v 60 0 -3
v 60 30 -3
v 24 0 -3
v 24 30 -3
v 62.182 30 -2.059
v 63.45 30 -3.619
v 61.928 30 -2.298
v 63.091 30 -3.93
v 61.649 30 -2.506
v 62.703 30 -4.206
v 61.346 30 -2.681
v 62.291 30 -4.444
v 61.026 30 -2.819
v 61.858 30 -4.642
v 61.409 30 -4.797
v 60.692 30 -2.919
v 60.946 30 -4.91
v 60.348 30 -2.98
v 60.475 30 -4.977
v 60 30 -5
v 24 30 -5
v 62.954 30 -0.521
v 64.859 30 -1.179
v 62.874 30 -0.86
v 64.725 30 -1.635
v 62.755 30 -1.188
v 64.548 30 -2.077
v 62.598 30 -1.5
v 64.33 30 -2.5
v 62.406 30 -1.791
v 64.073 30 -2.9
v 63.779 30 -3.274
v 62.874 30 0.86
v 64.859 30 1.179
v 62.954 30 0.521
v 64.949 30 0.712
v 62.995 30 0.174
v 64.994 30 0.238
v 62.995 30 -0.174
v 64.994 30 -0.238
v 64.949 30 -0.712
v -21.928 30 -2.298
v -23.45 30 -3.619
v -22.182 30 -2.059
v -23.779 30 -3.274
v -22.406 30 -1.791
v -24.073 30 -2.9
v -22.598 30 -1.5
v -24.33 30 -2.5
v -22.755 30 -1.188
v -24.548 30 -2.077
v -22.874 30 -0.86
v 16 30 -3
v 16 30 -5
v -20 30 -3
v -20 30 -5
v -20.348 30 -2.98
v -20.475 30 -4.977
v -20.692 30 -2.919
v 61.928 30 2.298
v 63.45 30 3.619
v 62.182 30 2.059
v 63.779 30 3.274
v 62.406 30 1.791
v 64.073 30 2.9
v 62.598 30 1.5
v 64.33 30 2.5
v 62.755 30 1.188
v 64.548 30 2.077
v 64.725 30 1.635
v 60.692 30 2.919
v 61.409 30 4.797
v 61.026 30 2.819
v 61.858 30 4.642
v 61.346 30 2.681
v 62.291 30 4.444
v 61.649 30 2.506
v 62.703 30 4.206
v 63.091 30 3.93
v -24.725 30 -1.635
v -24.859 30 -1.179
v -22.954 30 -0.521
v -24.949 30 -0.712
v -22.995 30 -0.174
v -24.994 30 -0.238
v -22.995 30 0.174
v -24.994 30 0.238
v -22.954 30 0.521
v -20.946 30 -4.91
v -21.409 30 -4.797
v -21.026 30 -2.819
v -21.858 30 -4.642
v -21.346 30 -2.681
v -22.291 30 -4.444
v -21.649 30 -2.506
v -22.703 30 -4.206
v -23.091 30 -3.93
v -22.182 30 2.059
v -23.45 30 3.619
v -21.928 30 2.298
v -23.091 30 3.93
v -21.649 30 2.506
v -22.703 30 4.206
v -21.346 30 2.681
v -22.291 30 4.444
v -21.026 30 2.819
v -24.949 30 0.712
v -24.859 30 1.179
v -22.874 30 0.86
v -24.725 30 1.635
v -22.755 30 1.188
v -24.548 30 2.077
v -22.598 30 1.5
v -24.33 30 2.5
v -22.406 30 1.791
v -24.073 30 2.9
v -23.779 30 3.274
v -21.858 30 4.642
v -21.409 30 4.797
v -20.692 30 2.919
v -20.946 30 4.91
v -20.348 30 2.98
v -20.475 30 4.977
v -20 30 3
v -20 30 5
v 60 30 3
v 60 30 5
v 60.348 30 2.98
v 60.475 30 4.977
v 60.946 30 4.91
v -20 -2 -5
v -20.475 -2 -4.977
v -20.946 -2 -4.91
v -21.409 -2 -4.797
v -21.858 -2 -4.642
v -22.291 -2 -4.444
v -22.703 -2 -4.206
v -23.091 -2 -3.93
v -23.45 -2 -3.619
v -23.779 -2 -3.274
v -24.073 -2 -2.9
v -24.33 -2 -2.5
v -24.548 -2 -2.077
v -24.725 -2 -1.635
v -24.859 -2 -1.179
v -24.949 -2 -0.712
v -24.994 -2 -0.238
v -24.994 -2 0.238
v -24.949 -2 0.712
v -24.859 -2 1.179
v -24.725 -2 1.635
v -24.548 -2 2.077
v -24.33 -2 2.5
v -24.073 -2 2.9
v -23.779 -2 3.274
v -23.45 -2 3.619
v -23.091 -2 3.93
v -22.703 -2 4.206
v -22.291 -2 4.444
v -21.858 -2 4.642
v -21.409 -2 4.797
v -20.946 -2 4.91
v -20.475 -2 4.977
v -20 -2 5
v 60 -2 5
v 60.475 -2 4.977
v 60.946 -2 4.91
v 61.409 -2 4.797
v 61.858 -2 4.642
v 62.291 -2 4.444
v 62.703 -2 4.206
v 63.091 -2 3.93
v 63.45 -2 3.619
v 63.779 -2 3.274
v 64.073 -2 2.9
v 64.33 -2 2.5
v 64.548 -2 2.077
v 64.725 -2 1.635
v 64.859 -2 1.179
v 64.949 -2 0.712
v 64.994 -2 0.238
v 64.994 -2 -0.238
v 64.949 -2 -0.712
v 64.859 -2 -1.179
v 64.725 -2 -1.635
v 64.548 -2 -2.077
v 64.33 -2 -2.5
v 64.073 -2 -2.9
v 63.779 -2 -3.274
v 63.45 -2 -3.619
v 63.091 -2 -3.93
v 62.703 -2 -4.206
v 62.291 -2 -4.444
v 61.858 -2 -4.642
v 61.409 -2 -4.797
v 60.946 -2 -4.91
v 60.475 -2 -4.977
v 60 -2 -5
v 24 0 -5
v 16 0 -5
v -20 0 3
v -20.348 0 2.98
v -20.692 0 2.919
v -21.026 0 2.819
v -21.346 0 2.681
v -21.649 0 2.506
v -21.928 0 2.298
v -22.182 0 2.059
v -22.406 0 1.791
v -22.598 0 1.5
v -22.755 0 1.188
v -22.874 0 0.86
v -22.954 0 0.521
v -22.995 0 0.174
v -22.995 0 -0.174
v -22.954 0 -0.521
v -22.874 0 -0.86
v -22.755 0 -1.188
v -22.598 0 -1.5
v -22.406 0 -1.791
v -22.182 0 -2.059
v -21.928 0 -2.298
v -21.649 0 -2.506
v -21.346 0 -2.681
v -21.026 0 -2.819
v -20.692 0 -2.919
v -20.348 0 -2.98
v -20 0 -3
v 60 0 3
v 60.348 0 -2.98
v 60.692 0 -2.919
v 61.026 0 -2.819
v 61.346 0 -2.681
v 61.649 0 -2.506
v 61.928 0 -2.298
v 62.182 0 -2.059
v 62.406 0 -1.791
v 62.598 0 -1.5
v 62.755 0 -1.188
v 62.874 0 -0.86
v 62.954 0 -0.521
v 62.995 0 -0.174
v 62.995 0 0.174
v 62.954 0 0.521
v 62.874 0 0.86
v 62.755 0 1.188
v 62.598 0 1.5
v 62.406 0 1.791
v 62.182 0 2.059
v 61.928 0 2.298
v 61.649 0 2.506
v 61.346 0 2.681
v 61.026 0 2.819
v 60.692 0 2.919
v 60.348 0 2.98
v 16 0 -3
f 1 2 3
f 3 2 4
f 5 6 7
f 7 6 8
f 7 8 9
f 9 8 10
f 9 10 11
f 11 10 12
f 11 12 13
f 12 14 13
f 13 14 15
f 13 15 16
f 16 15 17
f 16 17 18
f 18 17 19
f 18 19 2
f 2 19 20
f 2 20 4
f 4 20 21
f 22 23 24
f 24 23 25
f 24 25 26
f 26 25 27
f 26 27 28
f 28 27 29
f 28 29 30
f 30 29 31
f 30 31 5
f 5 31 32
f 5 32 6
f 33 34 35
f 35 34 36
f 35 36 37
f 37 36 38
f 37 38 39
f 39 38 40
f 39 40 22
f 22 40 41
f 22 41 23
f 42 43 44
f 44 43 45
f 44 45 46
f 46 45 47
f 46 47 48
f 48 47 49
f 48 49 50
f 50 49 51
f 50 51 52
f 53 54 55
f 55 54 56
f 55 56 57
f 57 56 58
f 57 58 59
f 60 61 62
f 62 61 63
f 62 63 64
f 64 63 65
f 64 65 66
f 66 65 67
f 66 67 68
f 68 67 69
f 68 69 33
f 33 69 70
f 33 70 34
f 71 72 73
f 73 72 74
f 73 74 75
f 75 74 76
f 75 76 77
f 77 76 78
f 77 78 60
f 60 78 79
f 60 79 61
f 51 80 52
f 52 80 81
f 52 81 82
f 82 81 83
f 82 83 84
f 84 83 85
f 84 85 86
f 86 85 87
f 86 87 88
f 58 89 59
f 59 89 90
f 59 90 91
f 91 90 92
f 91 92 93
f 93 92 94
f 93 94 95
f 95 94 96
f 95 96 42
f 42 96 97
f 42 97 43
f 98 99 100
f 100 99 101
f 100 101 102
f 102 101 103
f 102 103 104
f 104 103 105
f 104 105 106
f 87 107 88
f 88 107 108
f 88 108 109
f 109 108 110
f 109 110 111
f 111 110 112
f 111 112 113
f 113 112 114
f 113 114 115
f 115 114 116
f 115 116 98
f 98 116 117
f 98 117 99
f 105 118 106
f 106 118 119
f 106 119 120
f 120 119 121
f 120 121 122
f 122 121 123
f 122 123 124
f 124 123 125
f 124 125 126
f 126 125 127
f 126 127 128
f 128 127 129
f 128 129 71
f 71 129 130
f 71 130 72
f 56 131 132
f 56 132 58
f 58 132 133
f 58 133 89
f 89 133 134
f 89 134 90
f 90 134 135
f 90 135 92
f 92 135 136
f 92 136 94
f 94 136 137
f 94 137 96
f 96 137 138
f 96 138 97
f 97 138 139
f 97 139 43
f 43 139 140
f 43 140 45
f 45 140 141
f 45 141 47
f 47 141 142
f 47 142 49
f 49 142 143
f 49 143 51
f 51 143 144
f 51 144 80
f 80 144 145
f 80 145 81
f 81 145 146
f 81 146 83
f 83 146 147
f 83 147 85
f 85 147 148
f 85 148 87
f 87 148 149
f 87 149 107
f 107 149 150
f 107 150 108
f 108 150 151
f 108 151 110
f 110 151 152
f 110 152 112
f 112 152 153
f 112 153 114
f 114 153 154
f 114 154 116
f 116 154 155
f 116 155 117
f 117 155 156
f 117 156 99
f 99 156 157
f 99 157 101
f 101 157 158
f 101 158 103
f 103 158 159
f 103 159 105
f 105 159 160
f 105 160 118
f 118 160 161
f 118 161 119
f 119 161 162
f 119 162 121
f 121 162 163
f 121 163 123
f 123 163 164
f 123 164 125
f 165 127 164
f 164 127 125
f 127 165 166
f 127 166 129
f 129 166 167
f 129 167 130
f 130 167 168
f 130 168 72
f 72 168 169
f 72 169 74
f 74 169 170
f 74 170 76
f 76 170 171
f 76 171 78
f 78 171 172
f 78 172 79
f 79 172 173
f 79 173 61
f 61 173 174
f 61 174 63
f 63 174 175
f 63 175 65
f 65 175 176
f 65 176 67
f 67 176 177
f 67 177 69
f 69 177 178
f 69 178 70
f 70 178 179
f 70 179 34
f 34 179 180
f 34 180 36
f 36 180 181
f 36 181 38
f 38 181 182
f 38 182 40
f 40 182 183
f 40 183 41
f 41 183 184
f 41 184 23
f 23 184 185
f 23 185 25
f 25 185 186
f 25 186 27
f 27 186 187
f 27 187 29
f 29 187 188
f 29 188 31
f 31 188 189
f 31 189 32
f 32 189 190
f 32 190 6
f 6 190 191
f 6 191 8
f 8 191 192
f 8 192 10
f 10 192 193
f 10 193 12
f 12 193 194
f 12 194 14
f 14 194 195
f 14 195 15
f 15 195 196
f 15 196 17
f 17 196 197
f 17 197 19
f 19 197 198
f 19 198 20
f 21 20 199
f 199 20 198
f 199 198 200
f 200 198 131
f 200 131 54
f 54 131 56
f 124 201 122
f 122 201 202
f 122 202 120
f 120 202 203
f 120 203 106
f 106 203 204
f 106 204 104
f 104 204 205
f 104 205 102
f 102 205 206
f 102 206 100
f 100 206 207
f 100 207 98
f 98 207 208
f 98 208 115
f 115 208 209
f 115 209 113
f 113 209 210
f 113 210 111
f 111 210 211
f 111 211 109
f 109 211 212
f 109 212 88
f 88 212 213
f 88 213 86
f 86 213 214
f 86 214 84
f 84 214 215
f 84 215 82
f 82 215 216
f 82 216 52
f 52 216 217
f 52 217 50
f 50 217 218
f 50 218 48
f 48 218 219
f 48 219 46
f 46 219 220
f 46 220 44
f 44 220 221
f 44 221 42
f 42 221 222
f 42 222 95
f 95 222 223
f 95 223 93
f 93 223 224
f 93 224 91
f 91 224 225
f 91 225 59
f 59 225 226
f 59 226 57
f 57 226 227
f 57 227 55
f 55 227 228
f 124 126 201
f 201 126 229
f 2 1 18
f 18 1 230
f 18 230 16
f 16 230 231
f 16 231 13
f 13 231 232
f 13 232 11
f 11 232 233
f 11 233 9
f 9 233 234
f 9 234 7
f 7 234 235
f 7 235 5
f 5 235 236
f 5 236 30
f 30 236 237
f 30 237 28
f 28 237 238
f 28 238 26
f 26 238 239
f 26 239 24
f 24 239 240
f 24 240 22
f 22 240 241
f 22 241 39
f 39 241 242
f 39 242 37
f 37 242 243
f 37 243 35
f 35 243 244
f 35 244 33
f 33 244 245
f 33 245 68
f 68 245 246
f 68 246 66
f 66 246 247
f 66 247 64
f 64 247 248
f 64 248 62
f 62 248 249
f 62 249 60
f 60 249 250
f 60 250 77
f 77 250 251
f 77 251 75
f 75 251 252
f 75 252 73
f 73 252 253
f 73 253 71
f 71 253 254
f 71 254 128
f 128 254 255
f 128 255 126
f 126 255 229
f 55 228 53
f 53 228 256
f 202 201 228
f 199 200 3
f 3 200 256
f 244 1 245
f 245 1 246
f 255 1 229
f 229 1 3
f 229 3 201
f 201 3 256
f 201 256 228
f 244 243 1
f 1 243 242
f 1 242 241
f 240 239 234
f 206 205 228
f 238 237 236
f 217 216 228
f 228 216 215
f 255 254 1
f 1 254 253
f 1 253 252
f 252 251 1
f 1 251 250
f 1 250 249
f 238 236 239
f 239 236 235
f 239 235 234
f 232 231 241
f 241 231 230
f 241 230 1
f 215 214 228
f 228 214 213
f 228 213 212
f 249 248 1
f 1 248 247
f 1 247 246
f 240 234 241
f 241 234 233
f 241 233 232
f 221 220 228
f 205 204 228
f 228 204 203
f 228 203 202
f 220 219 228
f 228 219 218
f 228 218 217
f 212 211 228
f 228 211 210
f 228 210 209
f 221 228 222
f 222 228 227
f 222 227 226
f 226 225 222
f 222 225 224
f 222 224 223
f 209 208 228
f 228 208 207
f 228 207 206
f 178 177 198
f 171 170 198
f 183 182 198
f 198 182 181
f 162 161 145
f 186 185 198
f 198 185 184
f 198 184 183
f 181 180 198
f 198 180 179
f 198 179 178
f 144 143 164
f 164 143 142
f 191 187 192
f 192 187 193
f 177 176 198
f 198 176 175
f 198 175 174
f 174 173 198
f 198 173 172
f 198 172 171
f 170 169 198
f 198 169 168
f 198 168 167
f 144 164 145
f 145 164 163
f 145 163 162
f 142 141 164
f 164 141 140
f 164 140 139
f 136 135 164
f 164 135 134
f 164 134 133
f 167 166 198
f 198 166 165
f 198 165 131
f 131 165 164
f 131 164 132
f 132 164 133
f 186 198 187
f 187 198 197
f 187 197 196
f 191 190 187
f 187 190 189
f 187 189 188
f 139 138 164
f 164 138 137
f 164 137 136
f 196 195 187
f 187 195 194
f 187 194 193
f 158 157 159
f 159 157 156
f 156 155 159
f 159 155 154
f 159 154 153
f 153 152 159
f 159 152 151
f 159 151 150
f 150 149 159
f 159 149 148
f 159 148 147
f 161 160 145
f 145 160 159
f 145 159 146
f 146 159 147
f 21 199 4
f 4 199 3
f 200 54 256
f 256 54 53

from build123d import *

# Parameters (mm, degrees)
EXTRUDE_1_DEPTH     = 30
EXTRUDE_2_DEPTH     = 2
SKETCH_3_W          = 8
SKETCH_3_H          = 2.352392564
CUT_EXTRUDE_1_DEPTH = 30


with BuildPart() as part:
    # 草圖1 → 填料-伸長1 (new body)
    with BuildSketch(Plane(origin=(0, 0, 0), x_dir=(1, 0, 0), z_dir=(0, 1, 0))):
        with BuildLine():
            Line((-20, 5), (60, 5))
            ThreePointArc((60, 5), (65, 0), (60, -5))
            Line((60, -5), (-20, -5))
            ThreePointArc((-20, -5), (-25, 0), (-20, 5))
        make_face()
        with BuildLine():
            Line((-20, 3), (60, 3))
            ThreePointArc((60, 3), (63, 0), (60, -3))
            Line((60, -3), (-20, -3))
            ThreePointArc((-20, -3), (-23, 0), (-20, 3))
        make_face(mode=Mode.SUBTRACT)
    extrude(amount=EXTRUDE_1_DEPTH)

    # 草圖2 → 填料-伸長2 (add)
    with BuildSketch(Plane.XZ):
        with BuildLine():
            Line((-20, -5), (60, -5))
            ThreePointArc((60, -5), (65, 0), (60, 5))
            Line((60, 5), (-20, 5))
            ThreePointArc((-20, 5), (-25, 0), (-20, -5))
        make_face()
    extrude(amount=EXTRUDE_2_DEPTH)

    # 草圖3 → 除料-伸長1 (cut)
    with BuildSketch(Plane(origin=(0, 30, 0), x_dir=(1, 0, 0), z_dir=(0, 1, 0))):
        with Locations((20, 3.823803718)):
            Rectangle(SKETCH_3_W, SKETCH_3_H)
    extrude(amount=-CUT_EXTRUDE_1_DEPTH, mode=Mode.SUBTRACT)


solid = part.part
